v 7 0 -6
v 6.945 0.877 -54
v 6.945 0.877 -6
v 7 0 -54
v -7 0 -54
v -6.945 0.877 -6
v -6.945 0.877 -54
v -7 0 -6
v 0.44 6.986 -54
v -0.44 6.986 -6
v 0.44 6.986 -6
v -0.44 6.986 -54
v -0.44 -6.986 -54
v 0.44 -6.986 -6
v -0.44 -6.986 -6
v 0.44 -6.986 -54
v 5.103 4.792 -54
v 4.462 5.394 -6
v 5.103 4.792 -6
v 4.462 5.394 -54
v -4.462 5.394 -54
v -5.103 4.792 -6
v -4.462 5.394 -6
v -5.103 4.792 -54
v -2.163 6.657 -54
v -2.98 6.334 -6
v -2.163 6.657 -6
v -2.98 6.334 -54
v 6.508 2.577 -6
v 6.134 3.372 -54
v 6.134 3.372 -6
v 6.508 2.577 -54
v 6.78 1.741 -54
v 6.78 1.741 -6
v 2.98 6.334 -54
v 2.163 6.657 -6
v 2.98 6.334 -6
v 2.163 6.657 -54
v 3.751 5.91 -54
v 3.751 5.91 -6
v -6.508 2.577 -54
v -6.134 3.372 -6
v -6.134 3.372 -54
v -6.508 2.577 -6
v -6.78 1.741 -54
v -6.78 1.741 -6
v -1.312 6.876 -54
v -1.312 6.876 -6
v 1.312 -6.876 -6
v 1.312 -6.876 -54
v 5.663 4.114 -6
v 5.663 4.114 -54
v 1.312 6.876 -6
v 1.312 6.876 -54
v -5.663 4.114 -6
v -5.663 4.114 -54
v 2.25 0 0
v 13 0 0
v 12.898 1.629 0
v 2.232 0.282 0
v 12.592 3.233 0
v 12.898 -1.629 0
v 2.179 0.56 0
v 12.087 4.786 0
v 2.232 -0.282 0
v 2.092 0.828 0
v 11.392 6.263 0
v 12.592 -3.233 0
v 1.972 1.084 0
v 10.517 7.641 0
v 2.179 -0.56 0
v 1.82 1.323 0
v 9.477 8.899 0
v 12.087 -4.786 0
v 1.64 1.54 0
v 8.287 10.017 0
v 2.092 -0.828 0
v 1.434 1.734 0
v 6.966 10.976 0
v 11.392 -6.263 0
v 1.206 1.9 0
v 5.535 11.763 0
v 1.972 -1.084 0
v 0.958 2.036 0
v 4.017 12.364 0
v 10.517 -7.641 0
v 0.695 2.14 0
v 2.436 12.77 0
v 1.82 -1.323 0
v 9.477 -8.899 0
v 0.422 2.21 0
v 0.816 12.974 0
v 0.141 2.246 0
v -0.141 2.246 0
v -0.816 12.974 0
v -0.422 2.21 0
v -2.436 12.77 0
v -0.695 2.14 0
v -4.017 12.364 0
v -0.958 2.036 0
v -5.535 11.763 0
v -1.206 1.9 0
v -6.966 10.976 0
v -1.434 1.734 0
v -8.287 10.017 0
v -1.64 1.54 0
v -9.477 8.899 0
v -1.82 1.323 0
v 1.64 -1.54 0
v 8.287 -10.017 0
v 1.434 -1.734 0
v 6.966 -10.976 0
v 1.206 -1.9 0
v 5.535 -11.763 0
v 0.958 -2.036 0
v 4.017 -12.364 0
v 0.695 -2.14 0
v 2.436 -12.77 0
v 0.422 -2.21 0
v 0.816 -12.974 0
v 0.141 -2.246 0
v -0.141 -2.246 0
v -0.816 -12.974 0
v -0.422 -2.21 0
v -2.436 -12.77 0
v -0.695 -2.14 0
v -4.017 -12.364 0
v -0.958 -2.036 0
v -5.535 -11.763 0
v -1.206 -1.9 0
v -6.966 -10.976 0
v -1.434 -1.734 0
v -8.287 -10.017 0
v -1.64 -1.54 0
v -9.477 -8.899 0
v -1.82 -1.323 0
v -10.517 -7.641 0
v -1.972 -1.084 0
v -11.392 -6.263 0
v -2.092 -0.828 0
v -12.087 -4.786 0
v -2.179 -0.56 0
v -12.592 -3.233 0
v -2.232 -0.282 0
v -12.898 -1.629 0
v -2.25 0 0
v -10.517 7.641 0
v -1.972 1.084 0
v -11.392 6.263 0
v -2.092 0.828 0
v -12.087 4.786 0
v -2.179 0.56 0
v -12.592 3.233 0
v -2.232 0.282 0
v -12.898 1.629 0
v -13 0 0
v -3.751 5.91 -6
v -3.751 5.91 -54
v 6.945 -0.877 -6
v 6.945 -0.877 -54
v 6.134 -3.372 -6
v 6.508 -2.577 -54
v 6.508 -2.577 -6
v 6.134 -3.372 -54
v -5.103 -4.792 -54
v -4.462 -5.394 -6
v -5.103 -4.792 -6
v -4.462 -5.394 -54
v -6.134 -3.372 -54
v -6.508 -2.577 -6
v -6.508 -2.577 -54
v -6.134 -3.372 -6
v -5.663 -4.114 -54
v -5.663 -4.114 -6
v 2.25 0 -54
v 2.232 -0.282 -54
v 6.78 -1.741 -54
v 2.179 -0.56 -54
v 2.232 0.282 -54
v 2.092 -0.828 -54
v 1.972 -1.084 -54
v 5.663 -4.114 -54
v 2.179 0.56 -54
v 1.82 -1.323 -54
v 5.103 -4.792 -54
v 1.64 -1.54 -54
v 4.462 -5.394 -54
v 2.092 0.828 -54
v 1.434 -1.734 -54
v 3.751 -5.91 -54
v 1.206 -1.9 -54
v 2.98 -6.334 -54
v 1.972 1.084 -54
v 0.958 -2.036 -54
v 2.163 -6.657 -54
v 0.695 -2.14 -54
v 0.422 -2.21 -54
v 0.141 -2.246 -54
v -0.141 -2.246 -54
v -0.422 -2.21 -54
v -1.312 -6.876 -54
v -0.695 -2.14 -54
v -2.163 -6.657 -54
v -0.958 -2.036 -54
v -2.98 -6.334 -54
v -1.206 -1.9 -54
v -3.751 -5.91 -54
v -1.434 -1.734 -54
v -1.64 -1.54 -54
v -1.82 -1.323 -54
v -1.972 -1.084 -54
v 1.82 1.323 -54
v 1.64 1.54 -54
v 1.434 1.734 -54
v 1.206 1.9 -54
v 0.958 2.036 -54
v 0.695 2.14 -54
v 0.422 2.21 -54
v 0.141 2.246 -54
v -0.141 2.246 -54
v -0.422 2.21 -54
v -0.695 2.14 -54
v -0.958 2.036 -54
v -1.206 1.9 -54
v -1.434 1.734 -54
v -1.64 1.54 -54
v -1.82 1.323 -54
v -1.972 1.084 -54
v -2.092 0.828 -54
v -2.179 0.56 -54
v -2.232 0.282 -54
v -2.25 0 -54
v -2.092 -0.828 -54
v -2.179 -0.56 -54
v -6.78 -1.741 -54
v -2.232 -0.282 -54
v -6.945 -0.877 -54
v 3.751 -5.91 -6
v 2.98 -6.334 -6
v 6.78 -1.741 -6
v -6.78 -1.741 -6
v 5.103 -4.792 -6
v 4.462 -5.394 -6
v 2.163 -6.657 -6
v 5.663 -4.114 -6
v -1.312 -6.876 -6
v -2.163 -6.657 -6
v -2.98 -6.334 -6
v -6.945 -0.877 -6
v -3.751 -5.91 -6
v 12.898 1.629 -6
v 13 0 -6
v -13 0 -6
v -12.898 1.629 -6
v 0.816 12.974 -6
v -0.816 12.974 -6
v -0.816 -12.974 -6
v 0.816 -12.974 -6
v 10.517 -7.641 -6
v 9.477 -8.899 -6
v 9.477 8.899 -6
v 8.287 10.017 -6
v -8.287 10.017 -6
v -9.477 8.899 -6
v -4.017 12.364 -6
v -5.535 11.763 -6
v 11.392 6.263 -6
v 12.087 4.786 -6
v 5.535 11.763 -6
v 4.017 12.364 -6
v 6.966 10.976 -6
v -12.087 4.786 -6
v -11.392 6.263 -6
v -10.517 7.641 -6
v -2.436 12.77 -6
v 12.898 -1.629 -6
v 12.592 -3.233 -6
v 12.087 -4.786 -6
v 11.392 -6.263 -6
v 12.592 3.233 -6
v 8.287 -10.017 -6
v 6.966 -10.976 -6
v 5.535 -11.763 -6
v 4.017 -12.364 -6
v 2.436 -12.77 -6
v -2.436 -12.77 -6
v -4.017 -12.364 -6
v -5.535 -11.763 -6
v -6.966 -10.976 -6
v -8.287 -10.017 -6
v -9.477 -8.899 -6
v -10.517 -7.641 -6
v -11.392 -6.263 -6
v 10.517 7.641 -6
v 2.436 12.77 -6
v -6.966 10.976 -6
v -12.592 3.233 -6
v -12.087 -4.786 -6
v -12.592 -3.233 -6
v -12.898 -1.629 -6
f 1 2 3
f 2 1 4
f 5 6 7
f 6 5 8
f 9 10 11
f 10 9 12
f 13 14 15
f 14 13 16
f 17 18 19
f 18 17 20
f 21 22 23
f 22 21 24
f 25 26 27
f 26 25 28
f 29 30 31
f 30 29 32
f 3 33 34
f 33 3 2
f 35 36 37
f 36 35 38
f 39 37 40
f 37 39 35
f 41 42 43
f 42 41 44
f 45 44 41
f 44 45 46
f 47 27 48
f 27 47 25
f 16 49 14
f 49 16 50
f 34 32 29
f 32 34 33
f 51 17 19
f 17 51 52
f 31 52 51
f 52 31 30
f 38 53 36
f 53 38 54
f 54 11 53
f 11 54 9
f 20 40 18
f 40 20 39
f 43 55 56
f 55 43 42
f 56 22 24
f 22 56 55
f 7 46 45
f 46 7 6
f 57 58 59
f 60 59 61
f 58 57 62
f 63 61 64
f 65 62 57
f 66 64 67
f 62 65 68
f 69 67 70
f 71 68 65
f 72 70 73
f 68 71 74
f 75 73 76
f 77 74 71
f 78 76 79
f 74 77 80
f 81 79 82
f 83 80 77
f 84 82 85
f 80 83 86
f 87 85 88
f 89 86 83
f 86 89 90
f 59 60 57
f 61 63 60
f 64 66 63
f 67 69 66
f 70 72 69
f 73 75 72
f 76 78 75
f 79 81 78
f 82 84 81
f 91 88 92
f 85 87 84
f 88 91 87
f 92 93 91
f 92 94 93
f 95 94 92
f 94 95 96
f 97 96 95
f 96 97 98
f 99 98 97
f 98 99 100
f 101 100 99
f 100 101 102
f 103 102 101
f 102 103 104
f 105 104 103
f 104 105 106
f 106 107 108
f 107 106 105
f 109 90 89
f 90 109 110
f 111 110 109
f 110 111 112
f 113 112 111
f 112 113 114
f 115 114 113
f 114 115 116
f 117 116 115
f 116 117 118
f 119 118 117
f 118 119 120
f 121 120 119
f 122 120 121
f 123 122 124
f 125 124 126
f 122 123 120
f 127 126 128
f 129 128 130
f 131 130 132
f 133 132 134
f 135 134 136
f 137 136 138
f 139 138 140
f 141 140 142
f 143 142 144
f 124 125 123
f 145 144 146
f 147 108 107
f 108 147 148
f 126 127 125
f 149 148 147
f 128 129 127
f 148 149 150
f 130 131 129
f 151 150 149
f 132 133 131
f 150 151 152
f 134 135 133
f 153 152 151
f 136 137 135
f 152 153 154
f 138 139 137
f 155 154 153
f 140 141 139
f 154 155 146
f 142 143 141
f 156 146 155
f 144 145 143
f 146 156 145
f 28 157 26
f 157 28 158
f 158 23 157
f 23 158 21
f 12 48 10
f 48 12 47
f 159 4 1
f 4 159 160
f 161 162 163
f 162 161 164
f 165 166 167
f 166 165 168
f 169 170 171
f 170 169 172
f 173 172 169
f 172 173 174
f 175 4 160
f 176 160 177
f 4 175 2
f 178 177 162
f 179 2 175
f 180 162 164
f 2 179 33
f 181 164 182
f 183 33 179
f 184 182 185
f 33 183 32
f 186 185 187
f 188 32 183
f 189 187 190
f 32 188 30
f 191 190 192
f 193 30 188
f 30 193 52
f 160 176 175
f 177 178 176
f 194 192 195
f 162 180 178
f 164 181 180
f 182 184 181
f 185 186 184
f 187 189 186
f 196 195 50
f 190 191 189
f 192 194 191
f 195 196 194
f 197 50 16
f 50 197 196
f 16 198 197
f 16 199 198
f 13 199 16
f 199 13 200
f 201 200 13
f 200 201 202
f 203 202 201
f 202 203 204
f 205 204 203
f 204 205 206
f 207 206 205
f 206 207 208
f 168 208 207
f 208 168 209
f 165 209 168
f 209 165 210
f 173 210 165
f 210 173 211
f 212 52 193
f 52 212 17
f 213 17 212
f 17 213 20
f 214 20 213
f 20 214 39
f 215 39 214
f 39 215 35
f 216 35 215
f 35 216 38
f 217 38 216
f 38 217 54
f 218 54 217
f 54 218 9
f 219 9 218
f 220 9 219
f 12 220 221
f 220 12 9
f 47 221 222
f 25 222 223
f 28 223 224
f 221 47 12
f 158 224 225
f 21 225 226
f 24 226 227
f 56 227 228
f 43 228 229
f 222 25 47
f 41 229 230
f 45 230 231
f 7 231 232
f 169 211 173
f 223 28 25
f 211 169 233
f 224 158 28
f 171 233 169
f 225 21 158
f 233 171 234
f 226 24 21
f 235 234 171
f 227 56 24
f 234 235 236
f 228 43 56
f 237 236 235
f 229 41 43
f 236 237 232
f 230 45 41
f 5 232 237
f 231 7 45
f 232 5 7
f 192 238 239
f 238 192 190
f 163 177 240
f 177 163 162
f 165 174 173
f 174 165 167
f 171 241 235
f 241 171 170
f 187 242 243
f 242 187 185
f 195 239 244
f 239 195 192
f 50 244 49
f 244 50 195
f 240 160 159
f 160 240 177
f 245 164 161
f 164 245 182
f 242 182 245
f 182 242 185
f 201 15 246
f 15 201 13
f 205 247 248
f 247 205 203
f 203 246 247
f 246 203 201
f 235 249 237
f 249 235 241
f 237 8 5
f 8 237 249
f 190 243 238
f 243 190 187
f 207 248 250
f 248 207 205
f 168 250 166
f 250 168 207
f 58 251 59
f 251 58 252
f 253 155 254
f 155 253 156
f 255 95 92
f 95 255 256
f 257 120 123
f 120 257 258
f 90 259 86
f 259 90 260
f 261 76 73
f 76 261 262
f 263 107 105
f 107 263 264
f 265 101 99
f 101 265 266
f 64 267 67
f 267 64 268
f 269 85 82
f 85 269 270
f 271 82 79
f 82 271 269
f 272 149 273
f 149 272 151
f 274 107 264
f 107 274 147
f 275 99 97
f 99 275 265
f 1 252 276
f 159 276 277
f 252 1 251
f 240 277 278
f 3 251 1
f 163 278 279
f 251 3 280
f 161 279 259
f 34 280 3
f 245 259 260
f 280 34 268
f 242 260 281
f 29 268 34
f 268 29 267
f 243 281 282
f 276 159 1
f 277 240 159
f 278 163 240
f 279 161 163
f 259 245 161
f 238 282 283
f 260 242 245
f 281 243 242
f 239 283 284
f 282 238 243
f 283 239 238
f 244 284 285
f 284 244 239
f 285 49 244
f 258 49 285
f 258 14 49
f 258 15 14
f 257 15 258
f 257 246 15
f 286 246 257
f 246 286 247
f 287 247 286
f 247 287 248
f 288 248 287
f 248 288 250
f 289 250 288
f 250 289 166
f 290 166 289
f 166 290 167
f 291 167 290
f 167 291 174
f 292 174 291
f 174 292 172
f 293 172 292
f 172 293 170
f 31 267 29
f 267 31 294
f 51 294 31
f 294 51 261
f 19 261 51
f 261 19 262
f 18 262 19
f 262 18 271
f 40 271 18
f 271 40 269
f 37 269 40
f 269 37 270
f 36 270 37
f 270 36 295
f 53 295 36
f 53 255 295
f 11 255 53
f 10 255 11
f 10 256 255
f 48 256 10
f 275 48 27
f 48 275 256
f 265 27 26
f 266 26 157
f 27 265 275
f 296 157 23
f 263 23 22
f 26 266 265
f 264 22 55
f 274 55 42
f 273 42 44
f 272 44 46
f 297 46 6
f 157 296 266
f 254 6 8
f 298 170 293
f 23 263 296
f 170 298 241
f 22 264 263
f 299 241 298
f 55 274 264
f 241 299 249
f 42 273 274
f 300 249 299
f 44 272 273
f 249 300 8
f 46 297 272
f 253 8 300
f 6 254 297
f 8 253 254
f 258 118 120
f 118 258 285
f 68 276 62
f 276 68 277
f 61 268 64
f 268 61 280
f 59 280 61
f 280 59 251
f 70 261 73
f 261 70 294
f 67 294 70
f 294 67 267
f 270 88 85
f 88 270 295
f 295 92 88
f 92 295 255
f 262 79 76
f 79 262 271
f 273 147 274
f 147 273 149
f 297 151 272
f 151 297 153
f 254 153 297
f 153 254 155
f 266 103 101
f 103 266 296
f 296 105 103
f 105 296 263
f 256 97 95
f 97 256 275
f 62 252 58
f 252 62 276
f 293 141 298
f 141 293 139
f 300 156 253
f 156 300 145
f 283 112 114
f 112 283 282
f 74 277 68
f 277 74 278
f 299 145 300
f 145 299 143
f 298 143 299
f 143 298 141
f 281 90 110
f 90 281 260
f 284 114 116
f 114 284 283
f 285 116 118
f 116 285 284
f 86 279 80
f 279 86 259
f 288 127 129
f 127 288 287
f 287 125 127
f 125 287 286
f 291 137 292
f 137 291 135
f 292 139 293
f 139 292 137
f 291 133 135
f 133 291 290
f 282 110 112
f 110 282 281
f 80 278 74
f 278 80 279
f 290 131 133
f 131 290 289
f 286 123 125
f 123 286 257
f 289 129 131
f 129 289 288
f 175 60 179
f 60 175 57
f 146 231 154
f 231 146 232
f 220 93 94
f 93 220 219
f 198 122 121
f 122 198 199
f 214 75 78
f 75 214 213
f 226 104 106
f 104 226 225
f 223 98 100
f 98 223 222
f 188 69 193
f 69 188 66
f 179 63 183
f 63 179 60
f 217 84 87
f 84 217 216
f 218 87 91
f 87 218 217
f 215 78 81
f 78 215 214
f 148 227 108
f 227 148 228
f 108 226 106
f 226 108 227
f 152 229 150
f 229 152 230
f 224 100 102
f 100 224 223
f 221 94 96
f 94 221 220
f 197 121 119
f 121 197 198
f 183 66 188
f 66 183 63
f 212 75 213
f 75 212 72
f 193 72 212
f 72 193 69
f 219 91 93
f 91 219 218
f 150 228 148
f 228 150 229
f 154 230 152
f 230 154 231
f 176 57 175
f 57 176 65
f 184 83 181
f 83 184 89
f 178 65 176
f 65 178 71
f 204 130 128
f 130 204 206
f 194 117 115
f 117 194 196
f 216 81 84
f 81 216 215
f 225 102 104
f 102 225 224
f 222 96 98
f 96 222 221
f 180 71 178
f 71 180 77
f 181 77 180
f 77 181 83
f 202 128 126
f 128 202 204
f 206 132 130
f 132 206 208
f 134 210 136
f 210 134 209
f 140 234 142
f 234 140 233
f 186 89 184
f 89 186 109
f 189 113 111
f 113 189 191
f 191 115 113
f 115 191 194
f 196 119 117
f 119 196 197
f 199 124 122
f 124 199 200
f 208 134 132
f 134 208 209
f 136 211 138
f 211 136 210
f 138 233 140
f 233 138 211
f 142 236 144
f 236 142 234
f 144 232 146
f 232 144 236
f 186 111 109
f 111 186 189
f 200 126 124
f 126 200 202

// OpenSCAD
$fn = 50;


difference() {
	union() {
		translate(v = [0, 0, -54.0000000000]) {
			cylinder(h = 54, r = 7.0000000000);
		}
		translate(v = [0, 0, -6.0000000000]) {
			cylinder(h = 6, r = 13.0000000000);
		}
	}
	union() {
		#translate(v = [0, 0, -54]) {
			cylinder(h = 54, r = 2.2500000000);
		}
	}
}
